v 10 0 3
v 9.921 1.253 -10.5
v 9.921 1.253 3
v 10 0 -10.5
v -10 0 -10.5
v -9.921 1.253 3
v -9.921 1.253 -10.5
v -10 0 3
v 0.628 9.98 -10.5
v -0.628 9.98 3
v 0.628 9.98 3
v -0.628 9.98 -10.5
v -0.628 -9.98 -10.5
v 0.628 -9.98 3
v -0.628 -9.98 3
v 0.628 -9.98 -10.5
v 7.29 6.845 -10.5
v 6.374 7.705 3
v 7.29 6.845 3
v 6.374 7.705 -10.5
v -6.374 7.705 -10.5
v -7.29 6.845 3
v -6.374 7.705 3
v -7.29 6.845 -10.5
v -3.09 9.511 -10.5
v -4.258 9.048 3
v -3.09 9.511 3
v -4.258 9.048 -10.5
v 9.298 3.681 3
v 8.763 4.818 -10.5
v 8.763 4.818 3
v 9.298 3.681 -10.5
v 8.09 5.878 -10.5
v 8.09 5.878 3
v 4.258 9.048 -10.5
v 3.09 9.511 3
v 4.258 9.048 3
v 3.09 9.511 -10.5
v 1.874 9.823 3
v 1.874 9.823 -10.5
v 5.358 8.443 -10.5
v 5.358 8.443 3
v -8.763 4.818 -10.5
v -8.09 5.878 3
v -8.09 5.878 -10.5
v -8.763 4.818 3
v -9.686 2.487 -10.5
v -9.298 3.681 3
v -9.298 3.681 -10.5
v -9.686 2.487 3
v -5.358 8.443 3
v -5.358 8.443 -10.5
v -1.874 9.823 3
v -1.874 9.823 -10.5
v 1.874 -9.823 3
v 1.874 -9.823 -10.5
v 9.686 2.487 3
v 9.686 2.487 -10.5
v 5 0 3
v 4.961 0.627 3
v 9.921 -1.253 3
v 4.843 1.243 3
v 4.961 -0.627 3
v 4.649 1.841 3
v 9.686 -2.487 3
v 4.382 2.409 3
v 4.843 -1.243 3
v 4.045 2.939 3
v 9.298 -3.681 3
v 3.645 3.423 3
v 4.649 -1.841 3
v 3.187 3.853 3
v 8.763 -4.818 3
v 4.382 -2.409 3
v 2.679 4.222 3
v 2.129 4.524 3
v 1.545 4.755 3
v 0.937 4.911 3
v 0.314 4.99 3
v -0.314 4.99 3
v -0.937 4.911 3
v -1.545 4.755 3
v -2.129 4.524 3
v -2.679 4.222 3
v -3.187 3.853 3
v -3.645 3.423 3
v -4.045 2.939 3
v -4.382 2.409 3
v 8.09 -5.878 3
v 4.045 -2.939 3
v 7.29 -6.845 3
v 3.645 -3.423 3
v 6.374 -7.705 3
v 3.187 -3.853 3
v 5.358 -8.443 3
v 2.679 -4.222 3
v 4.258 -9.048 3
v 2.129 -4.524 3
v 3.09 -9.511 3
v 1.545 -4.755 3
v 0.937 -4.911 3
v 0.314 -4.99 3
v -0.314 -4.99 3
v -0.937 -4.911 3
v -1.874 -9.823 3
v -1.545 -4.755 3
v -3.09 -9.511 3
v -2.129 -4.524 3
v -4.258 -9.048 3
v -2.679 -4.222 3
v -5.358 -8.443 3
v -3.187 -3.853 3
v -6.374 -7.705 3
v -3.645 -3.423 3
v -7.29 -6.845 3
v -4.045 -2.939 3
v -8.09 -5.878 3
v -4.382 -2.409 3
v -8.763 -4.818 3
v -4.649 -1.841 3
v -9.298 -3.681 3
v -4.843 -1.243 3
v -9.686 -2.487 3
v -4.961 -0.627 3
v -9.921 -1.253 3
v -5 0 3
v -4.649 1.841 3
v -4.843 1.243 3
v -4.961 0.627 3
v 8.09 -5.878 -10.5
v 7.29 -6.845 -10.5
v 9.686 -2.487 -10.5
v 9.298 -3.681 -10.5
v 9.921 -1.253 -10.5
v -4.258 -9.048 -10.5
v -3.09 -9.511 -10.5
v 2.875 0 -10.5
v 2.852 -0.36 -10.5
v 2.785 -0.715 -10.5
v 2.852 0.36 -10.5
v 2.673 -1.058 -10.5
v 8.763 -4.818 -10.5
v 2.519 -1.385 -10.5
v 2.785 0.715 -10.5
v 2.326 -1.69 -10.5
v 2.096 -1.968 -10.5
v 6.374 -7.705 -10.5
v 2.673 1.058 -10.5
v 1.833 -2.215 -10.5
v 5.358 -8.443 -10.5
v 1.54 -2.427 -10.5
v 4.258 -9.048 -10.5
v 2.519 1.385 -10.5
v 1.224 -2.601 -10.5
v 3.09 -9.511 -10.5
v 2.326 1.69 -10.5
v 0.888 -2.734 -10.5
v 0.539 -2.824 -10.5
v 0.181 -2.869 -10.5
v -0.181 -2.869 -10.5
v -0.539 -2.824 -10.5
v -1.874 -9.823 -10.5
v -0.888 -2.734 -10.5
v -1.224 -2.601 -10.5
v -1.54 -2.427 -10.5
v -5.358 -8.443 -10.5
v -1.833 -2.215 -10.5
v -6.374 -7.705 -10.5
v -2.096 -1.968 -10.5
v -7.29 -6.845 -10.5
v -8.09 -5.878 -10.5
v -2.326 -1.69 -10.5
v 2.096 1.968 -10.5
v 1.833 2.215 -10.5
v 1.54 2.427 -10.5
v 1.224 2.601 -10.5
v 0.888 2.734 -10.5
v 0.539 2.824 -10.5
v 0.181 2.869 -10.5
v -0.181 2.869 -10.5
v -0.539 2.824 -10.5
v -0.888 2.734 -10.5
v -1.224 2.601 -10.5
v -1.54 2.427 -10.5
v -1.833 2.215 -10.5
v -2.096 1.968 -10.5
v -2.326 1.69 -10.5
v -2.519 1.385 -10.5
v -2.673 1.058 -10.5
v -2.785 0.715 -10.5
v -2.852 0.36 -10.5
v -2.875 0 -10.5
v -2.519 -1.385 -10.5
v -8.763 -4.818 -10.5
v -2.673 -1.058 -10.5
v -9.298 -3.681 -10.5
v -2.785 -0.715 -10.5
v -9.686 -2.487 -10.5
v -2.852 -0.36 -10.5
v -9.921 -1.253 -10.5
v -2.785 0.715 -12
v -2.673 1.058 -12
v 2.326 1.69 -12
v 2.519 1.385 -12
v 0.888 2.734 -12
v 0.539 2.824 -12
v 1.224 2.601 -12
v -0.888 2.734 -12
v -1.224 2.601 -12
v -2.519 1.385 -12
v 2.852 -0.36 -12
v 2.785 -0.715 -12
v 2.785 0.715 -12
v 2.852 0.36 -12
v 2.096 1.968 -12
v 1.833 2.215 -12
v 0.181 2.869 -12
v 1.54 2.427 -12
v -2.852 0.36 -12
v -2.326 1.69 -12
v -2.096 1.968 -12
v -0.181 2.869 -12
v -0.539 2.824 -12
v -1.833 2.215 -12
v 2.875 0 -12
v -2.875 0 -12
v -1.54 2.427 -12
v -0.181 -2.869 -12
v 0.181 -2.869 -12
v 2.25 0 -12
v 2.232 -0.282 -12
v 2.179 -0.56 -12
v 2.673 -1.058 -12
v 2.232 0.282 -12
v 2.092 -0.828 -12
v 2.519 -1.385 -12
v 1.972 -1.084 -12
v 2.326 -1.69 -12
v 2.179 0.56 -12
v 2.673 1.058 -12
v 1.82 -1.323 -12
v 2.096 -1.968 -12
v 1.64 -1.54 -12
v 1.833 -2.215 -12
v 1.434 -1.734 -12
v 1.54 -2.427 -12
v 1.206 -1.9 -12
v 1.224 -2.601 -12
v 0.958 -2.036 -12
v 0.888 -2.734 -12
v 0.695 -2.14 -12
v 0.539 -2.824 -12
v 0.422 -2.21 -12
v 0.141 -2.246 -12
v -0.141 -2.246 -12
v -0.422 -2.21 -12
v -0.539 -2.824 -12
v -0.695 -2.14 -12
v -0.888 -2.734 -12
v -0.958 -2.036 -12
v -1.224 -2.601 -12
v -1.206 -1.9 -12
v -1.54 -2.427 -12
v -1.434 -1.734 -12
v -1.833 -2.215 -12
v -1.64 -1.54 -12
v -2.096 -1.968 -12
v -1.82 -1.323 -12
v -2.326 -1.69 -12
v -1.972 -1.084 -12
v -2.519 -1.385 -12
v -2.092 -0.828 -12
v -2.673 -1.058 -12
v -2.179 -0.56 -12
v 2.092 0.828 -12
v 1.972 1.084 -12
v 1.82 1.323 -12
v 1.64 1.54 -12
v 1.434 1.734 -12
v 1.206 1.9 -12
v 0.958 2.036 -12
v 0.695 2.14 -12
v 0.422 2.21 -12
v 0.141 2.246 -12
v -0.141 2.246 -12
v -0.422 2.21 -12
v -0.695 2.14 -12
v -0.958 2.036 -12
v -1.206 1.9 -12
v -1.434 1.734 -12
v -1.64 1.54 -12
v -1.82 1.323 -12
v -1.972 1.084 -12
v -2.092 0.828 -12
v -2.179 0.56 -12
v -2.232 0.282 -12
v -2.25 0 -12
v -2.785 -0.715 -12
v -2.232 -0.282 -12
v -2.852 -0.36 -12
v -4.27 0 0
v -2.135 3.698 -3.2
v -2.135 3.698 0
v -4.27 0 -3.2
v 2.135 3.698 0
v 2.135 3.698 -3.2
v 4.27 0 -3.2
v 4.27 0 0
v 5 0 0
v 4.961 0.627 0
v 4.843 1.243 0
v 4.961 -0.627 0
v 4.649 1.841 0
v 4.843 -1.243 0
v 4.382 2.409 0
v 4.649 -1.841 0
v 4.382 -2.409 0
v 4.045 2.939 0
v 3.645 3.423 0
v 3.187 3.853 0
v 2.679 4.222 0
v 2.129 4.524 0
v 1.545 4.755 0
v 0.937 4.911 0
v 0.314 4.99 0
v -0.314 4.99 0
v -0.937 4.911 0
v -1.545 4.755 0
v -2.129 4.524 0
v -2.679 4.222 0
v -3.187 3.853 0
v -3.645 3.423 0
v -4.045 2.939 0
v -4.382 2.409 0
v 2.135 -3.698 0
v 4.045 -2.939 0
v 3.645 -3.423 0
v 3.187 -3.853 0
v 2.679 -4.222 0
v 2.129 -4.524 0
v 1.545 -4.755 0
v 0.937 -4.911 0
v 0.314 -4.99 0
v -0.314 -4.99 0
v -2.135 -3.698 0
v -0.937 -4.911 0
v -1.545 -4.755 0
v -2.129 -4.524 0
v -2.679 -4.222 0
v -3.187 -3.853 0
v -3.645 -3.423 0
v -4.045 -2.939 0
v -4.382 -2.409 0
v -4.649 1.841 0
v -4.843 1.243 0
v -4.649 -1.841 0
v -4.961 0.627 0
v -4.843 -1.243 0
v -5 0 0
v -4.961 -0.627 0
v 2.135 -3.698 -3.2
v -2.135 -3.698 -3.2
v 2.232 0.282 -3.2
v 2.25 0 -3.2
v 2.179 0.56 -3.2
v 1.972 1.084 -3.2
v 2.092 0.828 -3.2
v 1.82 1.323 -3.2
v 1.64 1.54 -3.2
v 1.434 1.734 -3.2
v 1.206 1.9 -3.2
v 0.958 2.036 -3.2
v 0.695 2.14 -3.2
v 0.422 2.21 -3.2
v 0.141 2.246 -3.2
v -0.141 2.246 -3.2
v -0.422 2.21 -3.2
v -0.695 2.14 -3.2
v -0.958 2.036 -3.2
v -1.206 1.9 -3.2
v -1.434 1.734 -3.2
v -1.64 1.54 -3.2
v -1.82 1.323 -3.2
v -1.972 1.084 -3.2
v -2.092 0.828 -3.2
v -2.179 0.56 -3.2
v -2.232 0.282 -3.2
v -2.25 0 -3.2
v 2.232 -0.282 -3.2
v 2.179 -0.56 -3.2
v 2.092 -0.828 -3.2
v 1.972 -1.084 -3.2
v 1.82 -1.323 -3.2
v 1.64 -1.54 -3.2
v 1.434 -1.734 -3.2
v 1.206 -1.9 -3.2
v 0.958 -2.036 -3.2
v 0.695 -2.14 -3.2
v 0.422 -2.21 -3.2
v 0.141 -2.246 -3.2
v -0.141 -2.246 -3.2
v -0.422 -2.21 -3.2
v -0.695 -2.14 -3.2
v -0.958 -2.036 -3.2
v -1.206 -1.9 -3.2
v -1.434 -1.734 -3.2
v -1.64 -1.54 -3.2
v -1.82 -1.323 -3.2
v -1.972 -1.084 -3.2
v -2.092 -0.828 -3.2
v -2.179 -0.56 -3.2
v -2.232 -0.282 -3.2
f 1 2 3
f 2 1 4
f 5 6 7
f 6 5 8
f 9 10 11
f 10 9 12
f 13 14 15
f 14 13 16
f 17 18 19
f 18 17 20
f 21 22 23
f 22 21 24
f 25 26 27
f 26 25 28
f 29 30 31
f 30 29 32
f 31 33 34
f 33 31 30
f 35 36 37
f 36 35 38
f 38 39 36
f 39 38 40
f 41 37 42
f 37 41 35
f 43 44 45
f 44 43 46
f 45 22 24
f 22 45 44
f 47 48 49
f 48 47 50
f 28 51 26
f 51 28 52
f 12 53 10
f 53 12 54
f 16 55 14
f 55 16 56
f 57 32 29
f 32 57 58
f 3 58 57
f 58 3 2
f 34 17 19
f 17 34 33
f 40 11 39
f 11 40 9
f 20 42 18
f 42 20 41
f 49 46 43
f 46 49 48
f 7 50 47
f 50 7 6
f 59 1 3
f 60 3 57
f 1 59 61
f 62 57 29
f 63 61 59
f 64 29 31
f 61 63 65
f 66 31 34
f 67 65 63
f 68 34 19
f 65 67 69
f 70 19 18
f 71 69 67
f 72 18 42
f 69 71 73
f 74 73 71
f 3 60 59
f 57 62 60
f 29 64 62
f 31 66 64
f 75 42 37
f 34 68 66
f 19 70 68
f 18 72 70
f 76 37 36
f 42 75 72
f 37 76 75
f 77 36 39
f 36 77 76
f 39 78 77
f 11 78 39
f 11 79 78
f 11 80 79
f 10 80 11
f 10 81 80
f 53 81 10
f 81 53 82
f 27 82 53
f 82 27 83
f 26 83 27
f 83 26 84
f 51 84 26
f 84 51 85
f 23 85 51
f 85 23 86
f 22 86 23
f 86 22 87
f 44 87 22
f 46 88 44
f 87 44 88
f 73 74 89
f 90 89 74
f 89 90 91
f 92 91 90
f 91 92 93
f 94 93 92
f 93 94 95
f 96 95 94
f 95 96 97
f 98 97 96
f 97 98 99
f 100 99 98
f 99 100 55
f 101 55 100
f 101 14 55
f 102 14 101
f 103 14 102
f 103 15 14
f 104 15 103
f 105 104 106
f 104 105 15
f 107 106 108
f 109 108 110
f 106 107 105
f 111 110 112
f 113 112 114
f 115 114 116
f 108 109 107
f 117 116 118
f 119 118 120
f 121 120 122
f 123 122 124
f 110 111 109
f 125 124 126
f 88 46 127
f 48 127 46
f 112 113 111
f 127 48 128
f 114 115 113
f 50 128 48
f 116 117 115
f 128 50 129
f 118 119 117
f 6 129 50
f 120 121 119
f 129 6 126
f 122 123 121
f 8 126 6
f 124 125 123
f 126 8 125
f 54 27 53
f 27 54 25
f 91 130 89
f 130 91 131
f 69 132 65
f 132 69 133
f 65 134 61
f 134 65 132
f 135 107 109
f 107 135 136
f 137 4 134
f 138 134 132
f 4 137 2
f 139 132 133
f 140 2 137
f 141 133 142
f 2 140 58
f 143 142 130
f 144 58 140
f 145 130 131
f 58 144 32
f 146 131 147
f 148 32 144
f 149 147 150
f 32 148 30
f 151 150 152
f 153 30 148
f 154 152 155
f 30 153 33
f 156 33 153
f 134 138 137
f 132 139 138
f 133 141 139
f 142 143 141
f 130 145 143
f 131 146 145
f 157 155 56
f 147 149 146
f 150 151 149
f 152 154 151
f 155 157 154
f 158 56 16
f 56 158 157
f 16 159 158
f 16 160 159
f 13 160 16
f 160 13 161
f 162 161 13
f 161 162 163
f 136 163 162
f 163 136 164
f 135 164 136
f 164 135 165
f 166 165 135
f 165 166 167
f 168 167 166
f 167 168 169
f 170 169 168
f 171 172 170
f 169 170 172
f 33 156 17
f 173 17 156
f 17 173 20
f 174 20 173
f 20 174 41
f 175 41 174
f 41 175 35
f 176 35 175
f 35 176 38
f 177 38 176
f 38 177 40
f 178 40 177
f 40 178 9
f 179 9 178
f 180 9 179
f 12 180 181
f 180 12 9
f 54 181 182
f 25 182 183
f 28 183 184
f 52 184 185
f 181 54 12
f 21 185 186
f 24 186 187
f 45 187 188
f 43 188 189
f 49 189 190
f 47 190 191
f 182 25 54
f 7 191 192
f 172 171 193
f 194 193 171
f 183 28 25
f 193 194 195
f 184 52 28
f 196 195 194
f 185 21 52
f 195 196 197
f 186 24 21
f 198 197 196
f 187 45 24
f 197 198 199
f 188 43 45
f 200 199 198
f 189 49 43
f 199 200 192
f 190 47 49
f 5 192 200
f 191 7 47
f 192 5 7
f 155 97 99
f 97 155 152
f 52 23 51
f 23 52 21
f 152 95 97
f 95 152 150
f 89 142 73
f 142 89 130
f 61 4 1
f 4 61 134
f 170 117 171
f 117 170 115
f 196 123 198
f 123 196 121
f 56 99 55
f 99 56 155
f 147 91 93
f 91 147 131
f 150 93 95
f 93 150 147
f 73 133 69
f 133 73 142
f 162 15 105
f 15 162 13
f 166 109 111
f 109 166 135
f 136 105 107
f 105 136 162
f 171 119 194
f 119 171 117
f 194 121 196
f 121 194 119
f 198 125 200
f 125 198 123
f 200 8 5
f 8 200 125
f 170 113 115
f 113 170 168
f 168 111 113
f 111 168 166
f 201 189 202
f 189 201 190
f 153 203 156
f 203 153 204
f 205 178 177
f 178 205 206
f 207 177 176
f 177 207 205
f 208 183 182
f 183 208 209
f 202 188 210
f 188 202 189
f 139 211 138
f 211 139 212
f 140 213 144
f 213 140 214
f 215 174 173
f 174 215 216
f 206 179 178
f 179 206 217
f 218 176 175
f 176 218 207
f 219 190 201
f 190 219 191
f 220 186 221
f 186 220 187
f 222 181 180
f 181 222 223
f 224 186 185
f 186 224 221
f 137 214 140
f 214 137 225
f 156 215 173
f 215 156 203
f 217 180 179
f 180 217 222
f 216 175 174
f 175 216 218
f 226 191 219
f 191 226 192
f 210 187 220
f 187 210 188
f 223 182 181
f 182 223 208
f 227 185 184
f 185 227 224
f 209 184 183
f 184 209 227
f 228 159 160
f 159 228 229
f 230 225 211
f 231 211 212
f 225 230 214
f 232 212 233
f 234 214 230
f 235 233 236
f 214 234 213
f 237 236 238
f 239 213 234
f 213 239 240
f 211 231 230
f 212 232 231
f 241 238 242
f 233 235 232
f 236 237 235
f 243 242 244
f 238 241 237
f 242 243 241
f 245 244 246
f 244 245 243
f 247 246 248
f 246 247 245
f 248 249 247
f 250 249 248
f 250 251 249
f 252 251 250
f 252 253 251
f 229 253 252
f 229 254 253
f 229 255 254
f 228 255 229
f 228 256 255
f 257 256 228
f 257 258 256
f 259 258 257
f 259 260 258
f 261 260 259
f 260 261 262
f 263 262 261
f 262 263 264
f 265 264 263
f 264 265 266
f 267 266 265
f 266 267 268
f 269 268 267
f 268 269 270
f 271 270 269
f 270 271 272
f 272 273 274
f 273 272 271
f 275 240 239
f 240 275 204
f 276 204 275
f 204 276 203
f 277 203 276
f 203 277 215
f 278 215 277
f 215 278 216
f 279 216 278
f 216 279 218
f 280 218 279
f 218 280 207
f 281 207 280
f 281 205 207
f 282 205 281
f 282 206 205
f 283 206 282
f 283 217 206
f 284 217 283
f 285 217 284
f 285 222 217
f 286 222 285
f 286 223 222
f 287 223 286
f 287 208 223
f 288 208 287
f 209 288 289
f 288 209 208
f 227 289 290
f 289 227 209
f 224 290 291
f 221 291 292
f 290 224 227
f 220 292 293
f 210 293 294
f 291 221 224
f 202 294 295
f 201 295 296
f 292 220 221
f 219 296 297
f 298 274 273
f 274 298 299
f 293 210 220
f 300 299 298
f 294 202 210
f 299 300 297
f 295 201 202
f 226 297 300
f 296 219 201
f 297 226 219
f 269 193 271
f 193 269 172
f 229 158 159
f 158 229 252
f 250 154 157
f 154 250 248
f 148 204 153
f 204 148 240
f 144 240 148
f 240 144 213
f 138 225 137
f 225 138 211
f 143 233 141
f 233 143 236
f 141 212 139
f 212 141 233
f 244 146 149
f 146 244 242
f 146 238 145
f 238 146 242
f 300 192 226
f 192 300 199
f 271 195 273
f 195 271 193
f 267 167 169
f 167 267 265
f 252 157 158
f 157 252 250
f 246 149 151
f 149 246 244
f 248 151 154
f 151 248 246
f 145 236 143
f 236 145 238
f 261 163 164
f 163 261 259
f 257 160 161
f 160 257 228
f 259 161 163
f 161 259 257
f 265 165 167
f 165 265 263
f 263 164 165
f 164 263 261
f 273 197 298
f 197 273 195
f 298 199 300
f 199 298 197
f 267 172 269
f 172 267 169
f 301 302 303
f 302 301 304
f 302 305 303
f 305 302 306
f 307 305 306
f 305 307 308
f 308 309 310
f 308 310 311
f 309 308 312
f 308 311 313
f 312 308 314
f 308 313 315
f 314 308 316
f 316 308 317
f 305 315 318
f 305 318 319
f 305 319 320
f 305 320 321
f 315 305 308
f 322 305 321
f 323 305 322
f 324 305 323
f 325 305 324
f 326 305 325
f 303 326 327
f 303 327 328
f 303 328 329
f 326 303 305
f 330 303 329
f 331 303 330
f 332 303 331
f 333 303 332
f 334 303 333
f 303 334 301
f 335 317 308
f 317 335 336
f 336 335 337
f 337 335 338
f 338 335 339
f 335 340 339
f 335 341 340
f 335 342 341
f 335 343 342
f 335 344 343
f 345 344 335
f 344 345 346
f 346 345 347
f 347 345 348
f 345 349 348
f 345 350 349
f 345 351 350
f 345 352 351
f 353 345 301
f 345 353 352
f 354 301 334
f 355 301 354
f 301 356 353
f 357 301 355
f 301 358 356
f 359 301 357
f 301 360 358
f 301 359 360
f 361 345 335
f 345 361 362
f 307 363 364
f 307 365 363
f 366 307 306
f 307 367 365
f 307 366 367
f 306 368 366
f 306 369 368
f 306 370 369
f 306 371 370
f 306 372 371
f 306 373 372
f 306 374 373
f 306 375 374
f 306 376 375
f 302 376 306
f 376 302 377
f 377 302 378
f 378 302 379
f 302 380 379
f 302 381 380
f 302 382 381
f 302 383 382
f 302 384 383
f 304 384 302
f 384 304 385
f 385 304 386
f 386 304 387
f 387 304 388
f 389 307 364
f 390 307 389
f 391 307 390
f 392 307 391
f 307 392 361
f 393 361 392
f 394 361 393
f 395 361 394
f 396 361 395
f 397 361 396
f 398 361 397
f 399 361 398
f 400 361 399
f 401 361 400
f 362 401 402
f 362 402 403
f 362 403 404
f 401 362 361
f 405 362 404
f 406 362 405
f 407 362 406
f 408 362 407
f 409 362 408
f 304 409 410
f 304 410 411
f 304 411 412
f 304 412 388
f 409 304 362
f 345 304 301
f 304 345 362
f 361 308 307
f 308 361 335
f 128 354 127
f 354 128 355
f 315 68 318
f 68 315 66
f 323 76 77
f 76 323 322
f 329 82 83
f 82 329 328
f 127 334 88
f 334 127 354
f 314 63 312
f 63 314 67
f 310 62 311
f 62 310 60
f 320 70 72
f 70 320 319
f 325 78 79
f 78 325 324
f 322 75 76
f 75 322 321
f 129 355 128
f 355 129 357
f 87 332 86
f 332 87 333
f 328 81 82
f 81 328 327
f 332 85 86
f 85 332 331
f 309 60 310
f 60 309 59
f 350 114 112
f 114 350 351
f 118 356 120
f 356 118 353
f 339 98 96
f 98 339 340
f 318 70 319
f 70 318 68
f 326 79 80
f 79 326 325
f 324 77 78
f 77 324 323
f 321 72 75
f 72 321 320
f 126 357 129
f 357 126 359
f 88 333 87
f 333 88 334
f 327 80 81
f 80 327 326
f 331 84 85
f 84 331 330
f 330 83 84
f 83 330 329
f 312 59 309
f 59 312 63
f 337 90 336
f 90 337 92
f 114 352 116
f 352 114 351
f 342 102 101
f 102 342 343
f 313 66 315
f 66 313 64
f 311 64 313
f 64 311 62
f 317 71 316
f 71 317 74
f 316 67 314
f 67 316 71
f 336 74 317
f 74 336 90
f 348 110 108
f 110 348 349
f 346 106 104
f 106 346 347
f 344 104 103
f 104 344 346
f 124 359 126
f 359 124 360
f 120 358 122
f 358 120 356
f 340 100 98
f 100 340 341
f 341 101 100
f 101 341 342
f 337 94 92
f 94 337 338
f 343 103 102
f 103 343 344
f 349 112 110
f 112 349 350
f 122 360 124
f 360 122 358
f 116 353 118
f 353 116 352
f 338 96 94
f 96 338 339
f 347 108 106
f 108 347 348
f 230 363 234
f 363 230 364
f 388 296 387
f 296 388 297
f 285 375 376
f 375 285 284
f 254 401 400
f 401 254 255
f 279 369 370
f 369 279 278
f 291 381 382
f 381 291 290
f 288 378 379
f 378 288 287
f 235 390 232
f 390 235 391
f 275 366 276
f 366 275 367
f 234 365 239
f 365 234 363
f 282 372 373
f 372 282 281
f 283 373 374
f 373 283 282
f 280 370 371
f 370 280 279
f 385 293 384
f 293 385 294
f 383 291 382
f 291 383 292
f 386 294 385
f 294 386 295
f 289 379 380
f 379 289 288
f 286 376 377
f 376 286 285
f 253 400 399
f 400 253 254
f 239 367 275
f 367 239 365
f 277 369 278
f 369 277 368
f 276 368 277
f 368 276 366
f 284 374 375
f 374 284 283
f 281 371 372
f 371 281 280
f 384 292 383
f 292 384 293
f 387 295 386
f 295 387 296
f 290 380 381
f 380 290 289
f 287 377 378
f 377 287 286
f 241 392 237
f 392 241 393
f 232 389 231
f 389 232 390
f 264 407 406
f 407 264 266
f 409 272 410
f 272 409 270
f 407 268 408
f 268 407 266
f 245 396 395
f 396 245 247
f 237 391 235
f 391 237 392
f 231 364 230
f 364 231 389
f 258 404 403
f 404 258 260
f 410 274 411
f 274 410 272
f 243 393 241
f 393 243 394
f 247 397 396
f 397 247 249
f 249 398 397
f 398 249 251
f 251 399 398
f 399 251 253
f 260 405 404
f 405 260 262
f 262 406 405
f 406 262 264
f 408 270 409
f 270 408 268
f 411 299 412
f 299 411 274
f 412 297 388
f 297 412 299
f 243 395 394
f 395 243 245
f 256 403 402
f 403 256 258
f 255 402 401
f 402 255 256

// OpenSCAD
$fn = 50;

difference() {
	union() {
		translate(v = [0, 0, -10.5]) {
			cylinder(h = 13.5, r = 10.0);
		}
		#translate(v = [0, 0, -12.0]) {
			cylinder(h = 12, r = 2.875);
		}
	}
	union() {
		translate(v = [0, 0, 0]) {
			rotate(a = [0, 0, 0]) {
				difference() {
					union() {
						translate(v = [0, 0, -3.2]) {
							linear_extrude(height = 3.2) {
								polygon(points = [[4.2698, 0.0], [2.1349000000000005, 3.697755269078796], [-2.134899999999999, 3.6977552690787965], [-4.2698, 5.228996902999369e-16], [-2.134900000000002, -3.6977552690787956], [2.1348999999999974, -3.697755269078798]]);
							}
						}
					}
					union();
				}
			}
		}
		#cylinder(h = 3, r = 5.0);
		#translate(v = [0, 0, -100.0]) {
			cylinder(h = 200, r = 2.25);
		}
	}
}
